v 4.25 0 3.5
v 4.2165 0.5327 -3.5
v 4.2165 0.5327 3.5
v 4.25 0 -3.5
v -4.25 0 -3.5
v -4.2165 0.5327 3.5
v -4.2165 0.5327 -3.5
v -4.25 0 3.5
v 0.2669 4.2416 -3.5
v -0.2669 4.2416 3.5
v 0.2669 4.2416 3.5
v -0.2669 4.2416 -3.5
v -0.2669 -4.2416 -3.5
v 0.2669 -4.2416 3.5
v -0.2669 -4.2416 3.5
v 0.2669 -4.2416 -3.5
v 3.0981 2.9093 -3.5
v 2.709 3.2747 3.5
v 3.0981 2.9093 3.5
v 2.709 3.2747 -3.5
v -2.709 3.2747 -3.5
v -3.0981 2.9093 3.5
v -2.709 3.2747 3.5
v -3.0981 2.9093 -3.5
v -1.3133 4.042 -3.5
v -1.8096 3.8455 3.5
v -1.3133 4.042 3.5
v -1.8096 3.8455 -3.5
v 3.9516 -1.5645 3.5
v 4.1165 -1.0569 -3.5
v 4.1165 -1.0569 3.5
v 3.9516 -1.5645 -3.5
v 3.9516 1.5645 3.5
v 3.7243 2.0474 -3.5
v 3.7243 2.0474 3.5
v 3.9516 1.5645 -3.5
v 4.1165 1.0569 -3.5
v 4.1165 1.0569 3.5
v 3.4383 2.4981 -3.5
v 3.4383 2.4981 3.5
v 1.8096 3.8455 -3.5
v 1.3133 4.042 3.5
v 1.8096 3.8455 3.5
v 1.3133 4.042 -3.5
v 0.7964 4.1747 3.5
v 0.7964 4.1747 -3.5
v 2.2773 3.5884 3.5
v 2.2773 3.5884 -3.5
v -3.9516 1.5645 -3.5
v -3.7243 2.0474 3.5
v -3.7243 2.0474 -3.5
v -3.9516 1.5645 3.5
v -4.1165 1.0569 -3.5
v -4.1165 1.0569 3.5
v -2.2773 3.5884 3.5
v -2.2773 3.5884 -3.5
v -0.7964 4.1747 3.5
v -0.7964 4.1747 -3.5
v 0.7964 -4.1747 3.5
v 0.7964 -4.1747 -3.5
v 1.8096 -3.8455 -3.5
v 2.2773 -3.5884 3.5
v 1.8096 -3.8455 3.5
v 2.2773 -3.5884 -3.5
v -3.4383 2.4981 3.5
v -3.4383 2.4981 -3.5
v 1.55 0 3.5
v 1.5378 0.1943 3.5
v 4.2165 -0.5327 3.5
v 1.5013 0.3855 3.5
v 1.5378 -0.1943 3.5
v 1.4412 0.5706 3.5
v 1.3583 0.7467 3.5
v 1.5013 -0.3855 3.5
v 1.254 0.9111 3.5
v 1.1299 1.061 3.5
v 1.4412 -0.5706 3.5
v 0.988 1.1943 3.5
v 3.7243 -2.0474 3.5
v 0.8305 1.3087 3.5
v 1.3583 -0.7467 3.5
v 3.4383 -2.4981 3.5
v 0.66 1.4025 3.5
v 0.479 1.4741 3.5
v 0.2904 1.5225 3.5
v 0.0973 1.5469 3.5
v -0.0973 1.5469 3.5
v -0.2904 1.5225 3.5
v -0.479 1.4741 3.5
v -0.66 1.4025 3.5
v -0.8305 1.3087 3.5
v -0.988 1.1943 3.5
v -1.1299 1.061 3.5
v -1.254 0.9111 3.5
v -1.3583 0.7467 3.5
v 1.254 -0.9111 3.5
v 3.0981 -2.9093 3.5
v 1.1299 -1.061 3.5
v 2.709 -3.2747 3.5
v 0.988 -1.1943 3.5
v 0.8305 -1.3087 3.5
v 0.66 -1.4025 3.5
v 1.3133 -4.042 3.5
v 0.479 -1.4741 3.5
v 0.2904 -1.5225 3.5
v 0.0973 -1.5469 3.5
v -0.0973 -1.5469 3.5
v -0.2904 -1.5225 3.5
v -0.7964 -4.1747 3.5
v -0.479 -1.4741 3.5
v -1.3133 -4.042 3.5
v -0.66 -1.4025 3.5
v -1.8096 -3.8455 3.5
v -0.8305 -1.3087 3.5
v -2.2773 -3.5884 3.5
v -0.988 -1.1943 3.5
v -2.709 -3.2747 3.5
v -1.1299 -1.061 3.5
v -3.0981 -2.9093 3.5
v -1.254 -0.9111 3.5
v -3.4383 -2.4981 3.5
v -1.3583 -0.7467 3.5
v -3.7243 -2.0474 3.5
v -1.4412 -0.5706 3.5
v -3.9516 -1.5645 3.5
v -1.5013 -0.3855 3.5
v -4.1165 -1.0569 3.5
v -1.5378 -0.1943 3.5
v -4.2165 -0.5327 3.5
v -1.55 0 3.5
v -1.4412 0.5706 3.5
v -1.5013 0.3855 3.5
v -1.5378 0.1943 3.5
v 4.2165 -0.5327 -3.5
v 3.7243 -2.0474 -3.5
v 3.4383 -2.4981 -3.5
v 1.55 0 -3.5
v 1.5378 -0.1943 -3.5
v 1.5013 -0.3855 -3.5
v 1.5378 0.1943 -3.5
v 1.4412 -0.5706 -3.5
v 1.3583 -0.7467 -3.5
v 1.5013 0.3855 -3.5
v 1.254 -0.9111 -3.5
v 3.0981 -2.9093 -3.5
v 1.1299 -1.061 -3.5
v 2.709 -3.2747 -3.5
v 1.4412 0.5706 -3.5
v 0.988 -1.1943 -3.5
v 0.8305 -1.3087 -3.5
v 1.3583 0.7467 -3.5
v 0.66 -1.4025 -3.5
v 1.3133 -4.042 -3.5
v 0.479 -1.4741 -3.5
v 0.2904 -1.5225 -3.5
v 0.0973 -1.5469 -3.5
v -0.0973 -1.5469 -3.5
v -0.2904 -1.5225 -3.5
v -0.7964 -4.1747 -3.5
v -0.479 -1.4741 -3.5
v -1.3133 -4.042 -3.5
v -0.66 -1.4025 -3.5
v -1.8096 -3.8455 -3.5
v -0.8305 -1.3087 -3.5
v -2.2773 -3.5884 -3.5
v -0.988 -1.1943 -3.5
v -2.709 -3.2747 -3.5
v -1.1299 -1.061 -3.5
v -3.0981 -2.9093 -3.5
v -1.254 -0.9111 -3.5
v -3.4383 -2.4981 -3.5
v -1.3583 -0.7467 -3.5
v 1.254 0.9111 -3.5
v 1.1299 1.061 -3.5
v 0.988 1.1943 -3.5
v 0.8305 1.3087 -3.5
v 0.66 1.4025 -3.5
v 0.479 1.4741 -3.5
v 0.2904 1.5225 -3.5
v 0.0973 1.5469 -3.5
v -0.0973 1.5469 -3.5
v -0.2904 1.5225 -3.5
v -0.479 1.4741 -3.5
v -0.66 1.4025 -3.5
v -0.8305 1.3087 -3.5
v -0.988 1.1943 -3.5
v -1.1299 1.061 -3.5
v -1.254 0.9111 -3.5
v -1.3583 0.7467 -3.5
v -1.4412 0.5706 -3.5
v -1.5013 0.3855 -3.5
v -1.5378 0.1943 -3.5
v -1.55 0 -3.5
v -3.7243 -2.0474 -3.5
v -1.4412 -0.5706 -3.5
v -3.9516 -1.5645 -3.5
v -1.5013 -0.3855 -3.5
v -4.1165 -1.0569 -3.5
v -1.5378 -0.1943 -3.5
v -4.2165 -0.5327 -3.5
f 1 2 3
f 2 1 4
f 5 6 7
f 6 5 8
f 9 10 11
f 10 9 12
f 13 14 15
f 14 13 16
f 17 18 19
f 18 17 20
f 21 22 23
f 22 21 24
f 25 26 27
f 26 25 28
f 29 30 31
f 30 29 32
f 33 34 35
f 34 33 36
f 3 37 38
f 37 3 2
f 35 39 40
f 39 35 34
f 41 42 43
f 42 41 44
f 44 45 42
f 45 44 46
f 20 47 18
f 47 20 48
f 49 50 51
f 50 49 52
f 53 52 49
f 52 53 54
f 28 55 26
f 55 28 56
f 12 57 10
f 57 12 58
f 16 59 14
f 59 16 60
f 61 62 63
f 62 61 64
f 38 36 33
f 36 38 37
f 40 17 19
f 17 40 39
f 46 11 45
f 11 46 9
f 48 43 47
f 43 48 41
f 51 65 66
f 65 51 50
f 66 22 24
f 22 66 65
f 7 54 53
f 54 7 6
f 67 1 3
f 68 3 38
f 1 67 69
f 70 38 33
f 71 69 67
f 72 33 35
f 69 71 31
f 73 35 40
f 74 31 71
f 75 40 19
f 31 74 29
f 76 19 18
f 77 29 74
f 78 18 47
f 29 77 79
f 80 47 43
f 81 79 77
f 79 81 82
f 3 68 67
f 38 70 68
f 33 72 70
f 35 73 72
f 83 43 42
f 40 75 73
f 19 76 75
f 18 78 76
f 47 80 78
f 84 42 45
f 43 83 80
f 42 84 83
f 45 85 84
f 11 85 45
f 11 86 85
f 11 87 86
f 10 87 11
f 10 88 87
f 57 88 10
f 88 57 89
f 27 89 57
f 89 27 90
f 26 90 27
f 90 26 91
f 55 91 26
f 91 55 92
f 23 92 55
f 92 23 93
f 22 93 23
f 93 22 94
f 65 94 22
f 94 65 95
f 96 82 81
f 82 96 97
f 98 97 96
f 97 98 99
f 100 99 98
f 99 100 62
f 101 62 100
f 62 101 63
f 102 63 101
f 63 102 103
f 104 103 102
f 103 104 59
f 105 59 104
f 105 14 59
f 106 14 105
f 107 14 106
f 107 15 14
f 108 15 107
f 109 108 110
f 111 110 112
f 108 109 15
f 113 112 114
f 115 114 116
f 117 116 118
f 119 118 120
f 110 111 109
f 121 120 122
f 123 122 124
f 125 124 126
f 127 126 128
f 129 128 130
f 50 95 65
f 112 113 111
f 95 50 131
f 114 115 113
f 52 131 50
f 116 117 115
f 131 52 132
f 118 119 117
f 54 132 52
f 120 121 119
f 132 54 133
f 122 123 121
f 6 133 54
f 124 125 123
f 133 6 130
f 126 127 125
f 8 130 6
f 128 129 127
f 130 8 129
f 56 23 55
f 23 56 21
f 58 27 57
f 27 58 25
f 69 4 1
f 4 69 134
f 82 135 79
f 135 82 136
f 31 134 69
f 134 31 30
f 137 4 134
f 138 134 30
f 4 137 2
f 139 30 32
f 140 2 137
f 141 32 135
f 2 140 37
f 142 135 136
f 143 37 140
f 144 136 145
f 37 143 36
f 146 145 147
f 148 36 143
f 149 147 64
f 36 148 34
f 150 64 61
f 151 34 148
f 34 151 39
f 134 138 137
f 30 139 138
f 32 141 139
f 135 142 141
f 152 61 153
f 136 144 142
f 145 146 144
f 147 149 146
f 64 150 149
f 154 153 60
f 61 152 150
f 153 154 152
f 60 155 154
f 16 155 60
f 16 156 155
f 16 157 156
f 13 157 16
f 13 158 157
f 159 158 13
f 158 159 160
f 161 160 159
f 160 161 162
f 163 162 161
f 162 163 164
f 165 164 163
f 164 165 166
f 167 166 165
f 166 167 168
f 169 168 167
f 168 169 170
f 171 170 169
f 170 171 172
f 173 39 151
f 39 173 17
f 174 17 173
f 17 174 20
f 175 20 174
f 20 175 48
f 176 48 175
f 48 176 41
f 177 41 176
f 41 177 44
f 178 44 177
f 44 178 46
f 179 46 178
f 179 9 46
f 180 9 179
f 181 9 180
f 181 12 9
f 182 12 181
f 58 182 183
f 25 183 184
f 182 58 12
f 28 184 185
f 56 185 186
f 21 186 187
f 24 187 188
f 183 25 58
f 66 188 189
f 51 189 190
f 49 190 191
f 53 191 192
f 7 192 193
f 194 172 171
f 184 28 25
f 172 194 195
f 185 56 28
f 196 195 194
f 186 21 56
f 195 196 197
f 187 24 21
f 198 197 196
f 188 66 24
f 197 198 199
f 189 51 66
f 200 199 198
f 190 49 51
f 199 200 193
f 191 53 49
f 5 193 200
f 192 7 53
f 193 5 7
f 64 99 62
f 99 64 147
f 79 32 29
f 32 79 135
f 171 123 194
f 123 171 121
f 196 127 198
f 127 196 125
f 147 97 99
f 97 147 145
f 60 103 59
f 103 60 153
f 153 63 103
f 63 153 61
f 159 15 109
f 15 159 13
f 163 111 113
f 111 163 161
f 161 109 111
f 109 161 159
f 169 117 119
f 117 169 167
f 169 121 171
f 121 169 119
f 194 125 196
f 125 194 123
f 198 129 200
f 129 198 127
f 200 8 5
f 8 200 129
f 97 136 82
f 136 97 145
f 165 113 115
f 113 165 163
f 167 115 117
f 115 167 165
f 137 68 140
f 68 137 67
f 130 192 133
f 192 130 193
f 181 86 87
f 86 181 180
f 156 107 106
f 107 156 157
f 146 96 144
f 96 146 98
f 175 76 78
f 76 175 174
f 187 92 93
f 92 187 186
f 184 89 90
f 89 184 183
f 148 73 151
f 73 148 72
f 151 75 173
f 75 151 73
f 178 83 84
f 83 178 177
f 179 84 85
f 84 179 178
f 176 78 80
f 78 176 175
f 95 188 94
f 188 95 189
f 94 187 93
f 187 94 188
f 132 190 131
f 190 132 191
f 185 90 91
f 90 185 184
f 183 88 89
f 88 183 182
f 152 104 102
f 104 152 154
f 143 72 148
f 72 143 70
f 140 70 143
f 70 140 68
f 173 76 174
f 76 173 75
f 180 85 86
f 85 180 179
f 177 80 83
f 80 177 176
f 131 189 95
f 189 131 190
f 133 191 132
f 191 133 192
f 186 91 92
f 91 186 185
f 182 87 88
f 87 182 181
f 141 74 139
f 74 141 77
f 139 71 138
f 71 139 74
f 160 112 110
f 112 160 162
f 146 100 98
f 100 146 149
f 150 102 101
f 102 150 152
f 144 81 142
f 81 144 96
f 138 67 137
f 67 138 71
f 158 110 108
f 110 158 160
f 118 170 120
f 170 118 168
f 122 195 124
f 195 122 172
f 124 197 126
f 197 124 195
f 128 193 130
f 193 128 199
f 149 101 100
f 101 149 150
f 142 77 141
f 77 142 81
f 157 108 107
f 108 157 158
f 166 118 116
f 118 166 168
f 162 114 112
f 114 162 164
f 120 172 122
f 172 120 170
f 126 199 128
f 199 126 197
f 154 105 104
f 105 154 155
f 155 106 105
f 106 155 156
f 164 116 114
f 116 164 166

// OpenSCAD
$fn = 50;


difference() {
	union() {
		translate(v = [0, 0, -3.5000000000]) {
			cylinder(h = 7, r = 4.2500000000);
		}
	}
	union() {
		translate(v = [0, 0, -100.0000000000]) {
			cylinder(h = 200, r = 1.5500000000);
		}
	}
}
